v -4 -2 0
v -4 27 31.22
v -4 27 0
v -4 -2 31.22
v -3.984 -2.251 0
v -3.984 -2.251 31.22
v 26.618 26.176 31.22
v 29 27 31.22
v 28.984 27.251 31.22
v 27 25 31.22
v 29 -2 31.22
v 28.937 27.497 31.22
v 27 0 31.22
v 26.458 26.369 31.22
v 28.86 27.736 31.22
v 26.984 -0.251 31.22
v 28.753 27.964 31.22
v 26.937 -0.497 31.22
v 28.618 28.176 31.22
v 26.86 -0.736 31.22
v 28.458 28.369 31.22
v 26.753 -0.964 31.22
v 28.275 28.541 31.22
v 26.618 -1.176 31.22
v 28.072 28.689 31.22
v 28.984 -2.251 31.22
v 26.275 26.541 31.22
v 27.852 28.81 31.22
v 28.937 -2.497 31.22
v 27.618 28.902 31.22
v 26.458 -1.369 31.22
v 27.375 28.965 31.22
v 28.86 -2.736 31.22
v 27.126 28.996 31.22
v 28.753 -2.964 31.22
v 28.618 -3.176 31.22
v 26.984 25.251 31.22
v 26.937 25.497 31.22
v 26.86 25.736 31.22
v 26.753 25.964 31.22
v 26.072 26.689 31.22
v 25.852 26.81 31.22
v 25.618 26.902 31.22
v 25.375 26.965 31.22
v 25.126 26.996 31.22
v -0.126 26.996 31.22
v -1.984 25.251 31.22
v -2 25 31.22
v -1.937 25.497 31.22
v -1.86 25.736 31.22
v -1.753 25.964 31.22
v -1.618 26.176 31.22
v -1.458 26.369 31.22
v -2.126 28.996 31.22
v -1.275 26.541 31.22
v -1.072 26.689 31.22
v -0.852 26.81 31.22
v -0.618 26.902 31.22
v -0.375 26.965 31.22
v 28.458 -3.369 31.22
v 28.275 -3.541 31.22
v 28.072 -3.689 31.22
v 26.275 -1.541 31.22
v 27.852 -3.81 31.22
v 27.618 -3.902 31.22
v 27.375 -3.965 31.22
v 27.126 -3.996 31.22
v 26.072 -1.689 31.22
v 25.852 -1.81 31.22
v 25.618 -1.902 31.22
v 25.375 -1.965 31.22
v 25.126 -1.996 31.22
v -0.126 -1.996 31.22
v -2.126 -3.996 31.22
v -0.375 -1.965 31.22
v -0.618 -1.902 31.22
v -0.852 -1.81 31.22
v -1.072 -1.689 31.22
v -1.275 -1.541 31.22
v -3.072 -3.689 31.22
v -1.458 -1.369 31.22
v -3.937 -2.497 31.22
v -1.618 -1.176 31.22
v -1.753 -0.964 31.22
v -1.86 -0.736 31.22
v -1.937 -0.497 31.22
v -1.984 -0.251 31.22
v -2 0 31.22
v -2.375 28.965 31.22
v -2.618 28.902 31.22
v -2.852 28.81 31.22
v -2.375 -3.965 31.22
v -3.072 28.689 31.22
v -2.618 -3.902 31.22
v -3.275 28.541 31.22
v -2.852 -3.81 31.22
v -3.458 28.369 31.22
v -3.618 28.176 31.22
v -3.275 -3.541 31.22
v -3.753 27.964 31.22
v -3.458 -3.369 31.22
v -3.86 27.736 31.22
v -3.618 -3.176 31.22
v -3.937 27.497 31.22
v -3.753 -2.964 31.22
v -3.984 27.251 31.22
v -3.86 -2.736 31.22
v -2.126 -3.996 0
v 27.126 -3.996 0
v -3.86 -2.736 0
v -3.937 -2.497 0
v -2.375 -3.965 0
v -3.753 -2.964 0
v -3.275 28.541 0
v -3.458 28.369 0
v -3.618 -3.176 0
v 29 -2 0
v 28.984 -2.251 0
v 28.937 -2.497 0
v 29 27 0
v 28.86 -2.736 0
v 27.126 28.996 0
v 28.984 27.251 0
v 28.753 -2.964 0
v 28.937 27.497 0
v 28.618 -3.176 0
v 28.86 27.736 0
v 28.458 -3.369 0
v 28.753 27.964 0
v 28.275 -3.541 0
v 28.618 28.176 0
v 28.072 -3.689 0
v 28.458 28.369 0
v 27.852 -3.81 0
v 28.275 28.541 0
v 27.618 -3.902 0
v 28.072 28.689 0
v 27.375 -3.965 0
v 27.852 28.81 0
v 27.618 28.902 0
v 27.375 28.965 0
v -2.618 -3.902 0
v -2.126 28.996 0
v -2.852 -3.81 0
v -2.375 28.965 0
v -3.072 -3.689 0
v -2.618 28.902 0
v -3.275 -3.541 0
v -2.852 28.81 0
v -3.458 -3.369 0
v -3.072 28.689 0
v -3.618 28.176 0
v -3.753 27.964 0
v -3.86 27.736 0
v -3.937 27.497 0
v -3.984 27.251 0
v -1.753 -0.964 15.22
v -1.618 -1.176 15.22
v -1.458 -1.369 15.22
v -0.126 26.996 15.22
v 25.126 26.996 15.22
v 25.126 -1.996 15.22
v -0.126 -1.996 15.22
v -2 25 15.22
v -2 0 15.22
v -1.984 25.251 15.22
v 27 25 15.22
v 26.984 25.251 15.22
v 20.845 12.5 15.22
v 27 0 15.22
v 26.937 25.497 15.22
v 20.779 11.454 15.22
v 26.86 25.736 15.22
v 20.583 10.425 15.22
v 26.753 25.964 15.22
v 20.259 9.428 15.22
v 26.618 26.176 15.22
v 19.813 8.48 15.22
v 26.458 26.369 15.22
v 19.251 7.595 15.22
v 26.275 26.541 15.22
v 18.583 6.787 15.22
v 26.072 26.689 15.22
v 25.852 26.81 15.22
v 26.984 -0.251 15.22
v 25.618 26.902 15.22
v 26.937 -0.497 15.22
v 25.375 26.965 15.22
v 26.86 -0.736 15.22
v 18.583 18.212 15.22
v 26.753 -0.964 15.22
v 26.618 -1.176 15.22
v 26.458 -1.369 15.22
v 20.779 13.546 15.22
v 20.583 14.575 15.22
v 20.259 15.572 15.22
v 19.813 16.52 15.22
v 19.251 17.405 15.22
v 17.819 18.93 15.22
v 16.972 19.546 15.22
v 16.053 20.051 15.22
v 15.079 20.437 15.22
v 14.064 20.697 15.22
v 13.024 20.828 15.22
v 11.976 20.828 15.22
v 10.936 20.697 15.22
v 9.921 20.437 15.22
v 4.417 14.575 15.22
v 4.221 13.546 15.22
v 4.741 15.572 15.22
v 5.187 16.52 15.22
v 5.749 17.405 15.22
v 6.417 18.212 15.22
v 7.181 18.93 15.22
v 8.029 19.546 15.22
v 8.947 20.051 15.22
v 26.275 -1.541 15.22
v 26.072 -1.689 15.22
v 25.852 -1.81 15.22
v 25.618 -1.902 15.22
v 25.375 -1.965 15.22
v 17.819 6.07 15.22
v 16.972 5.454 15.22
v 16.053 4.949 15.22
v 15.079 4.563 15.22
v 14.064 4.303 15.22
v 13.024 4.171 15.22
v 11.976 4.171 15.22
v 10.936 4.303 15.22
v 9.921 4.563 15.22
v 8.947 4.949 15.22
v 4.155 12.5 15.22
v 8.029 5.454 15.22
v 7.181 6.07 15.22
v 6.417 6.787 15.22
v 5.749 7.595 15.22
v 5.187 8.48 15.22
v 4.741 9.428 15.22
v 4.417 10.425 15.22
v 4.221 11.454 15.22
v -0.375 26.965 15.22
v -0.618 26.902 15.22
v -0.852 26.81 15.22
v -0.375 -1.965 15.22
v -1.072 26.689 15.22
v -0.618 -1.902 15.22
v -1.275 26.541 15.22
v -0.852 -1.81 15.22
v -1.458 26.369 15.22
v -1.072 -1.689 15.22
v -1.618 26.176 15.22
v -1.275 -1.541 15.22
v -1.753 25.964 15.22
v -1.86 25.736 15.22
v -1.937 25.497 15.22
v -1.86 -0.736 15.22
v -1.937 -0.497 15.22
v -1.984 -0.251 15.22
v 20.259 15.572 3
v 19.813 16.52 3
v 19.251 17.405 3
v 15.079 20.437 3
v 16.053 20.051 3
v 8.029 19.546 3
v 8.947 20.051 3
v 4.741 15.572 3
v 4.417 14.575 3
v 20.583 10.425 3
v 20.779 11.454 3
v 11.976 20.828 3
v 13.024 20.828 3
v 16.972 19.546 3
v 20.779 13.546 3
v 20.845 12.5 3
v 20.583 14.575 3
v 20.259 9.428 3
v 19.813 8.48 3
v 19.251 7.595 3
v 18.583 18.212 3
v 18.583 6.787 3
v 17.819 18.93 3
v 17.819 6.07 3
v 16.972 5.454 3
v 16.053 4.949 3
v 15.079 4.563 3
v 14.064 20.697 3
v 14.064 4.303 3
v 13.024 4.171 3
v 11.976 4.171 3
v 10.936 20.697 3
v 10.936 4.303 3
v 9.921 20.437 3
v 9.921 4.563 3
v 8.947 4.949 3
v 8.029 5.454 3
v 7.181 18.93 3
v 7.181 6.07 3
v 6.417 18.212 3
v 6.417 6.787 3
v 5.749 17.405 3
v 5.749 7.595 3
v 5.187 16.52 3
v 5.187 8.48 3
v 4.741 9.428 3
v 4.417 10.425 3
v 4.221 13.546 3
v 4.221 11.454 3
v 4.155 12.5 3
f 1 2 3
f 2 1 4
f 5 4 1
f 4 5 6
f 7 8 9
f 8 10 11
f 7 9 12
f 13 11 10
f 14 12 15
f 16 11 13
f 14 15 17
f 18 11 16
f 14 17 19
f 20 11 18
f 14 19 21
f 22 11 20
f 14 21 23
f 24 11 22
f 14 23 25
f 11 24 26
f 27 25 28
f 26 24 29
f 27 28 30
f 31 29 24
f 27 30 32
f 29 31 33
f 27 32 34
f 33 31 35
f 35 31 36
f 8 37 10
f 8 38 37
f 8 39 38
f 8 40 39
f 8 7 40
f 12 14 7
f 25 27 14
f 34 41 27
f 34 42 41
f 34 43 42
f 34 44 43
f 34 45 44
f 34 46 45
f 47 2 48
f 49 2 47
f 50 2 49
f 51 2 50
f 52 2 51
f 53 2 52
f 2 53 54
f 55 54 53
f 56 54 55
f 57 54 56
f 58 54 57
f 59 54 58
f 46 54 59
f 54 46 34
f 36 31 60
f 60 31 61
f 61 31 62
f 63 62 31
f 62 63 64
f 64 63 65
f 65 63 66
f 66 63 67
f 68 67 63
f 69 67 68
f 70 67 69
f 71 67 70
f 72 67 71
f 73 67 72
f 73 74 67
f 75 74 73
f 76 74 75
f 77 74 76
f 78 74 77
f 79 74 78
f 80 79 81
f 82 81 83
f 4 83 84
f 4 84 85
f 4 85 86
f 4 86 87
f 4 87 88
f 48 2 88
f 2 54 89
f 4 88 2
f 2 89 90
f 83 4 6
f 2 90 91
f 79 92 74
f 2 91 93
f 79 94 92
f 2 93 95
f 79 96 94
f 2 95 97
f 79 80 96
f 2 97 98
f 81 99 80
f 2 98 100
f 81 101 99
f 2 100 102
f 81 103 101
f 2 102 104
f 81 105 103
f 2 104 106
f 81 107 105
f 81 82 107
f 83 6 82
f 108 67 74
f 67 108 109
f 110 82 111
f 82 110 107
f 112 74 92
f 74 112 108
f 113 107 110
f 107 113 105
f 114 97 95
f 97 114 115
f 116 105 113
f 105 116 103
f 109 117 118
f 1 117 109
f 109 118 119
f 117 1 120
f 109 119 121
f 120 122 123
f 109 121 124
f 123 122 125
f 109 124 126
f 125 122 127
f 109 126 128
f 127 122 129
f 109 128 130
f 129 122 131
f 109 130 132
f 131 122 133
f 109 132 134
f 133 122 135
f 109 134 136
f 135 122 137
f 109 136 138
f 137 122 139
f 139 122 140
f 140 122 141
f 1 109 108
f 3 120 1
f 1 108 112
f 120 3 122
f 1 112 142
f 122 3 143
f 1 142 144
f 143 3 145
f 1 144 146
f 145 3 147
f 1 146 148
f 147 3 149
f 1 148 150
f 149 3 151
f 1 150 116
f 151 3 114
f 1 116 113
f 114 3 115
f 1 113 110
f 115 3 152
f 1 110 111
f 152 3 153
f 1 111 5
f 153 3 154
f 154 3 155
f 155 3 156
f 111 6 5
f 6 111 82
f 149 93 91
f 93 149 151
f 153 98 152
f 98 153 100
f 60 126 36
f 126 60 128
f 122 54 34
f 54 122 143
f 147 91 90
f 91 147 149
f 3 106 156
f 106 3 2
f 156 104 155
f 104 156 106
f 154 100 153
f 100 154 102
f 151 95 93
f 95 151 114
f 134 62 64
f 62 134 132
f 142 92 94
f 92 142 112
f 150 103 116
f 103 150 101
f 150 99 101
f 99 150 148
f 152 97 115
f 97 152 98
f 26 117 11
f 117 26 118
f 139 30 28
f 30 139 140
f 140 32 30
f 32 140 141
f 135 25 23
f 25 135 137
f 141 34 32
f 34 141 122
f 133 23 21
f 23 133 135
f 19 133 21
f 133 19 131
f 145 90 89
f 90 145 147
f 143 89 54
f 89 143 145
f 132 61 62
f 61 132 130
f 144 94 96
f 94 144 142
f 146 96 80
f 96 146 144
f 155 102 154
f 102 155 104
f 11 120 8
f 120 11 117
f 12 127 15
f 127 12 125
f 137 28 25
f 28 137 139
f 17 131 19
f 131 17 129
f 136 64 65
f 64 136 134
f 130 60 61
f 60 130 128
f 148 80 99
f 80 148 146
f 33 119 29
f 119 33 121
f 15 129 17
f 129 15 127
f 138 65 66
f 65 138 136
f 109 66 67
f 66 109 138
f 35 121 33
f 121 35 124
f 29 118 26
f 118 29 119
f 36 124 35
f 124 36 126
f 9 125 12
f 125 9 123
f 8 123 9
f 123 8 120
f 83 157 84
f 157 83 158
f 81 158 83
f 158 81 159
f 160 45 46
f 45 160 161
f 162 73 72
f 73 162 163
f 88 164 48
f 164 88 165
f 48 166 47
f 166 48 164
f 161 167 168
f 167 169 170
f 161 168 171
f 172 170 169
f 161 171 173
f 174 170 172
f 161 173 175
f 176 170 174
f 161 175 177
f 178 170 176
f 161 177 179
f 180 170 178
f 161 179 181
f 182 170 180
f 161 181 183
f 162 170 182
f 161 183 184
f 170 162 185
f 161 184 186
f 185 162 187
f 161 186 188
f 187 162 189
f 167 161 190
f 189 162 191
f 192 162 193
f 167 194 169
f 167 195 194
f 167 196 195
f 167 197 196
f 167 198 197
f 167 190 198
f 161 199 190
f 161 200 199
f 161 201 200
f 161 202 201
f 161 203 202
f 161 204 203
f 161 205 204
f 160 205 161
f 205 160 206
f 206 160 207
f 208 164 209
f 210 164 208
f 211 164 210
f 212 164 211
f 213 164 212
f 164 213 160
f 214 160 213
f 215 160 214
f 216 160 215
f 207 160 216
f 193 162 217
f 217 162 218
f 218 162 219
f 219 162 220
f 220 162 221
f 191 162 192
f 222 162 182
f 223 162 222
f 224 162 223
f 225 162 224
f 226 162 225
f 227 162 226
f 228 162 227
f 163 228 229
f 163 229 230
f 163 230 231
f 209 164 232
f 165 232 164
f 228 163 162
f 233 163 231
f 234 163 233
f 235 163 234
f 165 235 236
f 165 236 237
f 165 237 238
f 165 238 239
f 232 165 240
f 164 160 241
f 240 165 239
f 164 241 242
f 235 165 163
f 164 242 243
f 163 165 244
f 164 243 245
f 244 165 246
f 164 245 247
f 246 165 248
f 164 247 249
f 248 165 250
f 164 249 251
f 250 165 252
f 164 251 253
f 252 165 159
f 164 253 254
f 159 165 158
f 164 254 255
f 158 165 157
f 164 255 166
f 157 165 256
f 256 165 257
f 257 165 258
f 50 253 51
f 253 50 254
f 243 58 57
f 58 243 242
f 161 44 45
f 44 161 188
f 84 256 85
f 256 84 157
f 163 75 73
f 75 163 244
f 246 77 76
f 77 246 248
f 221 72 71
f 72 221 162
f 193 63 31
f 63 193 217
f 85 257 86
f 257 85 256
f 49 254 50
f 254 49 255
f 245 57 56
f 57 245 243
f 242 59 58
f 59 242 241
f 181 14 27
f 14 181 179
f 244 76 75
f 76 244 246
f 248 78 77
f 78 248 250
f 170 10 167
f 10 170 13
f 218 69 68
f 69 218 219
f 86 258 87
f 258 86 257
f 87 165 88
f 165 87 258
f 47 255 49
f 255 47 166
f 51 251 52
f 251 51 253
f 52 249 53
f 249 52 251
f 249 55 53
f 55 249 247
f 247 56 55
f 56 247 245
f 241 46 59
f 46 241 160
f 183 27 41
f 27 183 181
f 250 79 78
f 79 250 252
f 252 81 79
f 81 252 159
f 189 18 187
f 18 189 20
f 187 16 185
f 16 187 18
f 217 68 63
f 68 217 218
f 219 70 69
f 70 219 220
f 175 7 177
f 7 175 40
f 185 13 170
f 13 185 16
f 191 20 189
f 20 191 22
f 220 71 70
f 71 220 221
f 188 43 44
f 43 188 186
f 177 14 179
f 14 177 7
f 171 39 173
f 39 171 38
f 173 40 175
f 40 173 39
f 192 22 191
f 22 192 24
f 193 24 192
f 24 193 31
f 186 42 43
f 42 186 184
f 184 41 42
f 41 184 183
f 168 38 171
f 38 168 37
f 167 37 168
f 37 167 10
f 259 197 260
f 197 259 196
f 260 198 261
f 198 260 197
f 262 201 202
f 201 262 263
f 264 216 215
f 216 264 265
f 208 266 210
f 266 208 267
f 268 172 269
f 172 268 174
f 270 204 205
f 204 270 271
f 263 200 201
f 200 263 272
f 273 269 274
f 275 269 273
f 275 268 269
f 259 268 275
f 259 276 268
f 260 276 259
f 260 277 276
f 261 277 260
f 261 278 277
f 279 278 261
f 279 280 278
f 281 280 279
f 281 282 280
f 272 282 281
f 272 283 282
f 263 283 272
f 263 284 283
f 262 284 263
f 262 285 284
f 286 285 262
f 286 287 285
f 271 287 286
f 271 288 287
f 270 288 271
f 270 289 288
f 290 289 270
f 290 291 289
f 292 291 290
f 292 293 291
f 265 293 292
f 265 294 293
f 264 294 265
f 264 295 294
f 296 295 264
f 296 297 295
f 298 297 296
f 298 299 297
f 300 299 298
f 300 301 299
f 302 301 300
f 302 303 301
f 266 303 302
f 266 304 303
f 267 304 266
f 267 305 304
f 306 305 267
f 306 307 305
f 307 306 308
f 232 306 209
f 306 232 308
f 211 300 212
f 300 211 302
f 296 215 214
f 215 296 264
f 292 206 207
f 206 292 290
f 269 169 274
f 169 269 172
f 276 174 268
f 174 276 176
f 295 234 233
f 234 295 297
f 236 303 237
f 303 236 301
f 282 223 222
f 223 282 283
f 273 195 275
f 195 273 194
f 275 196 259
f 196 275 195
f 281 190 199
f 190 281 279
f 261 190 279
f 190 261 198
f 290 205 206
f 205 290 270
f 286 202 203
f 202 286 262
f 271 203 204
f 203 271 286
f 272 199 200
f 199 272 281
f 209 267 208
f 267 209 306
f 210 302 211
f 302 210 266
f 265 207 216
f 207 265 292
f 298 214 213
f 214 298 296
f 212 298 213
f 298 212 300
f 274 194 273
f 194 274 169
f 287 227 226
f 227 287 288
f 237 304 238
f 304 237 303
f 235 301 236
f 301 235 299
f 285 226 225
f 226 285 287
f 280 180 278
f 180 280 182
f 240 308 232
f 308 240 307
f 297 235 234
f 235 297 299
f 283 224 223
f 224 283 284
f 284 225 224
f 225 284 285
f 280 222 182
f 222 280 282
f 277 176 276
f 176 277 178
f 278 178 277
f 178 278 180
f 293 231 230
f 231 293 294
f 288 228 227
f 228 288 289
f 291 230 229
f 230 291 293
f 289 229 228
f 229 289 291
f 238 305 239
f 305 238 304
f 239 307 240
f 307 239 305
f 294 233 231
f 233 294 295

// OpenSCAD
personalPawnHeight = 26.72 + .5;
personalPawnDiameter = 16.19 + .5;
protrusionHeight = 15;



length = 25;
width = 25;
floorHeight = 3;
height = (personalPawnHeight - protrusionHeight) + floorHeight;
totalHeight = height + protrusionHeight;
magnetPadding = 15;
magnetBaseOuterDiameter = 18;
magnetBaseInnerDiameter = 15.4;
magnetHeight = 4.0;



wallThickness = 3;
lipThickness = 2;




//      30 cubes, 7.85-8.1 (use woodenCubeSide) cubed
//		2 cubes, 10 cubed
//		1 player token
//			orange
//				17.25 width, 18.8 tall, 10.0 thick
//			blue
//				19.7 width, 18.7 tall, 9.95 thick
//			purple
//				17.4 width, 19.5 tall, 10.0 tall
//			white
//				17.7 width, 19.05 tall, 9.8 thick
 
//    rotate([0,0,90])
   
    union() {    
        $fn=50;
        difference(){
            
            translate([-lipThickness, -lipThickness, 0])
                minkowski()
                {
                    cube([length + lipThickness * 2, width + lipThickness * 2, totalHeight]);
                    cylinder(r=2,h=1);
                }
               
            translate([0, 0, height])
                minkowski()
                {
                    cube([length, width, totalHeight - height]);
                    cylinder(r=2,h=1);
                }
                
           
            translate([
                length/2,
                width/2,
                height - (personalPawnHeight - protrusionHeight)])
                cylinder(personalPawnHeight, d=personalPawnDiameter);
               
        }
        
    }
    
    
    
